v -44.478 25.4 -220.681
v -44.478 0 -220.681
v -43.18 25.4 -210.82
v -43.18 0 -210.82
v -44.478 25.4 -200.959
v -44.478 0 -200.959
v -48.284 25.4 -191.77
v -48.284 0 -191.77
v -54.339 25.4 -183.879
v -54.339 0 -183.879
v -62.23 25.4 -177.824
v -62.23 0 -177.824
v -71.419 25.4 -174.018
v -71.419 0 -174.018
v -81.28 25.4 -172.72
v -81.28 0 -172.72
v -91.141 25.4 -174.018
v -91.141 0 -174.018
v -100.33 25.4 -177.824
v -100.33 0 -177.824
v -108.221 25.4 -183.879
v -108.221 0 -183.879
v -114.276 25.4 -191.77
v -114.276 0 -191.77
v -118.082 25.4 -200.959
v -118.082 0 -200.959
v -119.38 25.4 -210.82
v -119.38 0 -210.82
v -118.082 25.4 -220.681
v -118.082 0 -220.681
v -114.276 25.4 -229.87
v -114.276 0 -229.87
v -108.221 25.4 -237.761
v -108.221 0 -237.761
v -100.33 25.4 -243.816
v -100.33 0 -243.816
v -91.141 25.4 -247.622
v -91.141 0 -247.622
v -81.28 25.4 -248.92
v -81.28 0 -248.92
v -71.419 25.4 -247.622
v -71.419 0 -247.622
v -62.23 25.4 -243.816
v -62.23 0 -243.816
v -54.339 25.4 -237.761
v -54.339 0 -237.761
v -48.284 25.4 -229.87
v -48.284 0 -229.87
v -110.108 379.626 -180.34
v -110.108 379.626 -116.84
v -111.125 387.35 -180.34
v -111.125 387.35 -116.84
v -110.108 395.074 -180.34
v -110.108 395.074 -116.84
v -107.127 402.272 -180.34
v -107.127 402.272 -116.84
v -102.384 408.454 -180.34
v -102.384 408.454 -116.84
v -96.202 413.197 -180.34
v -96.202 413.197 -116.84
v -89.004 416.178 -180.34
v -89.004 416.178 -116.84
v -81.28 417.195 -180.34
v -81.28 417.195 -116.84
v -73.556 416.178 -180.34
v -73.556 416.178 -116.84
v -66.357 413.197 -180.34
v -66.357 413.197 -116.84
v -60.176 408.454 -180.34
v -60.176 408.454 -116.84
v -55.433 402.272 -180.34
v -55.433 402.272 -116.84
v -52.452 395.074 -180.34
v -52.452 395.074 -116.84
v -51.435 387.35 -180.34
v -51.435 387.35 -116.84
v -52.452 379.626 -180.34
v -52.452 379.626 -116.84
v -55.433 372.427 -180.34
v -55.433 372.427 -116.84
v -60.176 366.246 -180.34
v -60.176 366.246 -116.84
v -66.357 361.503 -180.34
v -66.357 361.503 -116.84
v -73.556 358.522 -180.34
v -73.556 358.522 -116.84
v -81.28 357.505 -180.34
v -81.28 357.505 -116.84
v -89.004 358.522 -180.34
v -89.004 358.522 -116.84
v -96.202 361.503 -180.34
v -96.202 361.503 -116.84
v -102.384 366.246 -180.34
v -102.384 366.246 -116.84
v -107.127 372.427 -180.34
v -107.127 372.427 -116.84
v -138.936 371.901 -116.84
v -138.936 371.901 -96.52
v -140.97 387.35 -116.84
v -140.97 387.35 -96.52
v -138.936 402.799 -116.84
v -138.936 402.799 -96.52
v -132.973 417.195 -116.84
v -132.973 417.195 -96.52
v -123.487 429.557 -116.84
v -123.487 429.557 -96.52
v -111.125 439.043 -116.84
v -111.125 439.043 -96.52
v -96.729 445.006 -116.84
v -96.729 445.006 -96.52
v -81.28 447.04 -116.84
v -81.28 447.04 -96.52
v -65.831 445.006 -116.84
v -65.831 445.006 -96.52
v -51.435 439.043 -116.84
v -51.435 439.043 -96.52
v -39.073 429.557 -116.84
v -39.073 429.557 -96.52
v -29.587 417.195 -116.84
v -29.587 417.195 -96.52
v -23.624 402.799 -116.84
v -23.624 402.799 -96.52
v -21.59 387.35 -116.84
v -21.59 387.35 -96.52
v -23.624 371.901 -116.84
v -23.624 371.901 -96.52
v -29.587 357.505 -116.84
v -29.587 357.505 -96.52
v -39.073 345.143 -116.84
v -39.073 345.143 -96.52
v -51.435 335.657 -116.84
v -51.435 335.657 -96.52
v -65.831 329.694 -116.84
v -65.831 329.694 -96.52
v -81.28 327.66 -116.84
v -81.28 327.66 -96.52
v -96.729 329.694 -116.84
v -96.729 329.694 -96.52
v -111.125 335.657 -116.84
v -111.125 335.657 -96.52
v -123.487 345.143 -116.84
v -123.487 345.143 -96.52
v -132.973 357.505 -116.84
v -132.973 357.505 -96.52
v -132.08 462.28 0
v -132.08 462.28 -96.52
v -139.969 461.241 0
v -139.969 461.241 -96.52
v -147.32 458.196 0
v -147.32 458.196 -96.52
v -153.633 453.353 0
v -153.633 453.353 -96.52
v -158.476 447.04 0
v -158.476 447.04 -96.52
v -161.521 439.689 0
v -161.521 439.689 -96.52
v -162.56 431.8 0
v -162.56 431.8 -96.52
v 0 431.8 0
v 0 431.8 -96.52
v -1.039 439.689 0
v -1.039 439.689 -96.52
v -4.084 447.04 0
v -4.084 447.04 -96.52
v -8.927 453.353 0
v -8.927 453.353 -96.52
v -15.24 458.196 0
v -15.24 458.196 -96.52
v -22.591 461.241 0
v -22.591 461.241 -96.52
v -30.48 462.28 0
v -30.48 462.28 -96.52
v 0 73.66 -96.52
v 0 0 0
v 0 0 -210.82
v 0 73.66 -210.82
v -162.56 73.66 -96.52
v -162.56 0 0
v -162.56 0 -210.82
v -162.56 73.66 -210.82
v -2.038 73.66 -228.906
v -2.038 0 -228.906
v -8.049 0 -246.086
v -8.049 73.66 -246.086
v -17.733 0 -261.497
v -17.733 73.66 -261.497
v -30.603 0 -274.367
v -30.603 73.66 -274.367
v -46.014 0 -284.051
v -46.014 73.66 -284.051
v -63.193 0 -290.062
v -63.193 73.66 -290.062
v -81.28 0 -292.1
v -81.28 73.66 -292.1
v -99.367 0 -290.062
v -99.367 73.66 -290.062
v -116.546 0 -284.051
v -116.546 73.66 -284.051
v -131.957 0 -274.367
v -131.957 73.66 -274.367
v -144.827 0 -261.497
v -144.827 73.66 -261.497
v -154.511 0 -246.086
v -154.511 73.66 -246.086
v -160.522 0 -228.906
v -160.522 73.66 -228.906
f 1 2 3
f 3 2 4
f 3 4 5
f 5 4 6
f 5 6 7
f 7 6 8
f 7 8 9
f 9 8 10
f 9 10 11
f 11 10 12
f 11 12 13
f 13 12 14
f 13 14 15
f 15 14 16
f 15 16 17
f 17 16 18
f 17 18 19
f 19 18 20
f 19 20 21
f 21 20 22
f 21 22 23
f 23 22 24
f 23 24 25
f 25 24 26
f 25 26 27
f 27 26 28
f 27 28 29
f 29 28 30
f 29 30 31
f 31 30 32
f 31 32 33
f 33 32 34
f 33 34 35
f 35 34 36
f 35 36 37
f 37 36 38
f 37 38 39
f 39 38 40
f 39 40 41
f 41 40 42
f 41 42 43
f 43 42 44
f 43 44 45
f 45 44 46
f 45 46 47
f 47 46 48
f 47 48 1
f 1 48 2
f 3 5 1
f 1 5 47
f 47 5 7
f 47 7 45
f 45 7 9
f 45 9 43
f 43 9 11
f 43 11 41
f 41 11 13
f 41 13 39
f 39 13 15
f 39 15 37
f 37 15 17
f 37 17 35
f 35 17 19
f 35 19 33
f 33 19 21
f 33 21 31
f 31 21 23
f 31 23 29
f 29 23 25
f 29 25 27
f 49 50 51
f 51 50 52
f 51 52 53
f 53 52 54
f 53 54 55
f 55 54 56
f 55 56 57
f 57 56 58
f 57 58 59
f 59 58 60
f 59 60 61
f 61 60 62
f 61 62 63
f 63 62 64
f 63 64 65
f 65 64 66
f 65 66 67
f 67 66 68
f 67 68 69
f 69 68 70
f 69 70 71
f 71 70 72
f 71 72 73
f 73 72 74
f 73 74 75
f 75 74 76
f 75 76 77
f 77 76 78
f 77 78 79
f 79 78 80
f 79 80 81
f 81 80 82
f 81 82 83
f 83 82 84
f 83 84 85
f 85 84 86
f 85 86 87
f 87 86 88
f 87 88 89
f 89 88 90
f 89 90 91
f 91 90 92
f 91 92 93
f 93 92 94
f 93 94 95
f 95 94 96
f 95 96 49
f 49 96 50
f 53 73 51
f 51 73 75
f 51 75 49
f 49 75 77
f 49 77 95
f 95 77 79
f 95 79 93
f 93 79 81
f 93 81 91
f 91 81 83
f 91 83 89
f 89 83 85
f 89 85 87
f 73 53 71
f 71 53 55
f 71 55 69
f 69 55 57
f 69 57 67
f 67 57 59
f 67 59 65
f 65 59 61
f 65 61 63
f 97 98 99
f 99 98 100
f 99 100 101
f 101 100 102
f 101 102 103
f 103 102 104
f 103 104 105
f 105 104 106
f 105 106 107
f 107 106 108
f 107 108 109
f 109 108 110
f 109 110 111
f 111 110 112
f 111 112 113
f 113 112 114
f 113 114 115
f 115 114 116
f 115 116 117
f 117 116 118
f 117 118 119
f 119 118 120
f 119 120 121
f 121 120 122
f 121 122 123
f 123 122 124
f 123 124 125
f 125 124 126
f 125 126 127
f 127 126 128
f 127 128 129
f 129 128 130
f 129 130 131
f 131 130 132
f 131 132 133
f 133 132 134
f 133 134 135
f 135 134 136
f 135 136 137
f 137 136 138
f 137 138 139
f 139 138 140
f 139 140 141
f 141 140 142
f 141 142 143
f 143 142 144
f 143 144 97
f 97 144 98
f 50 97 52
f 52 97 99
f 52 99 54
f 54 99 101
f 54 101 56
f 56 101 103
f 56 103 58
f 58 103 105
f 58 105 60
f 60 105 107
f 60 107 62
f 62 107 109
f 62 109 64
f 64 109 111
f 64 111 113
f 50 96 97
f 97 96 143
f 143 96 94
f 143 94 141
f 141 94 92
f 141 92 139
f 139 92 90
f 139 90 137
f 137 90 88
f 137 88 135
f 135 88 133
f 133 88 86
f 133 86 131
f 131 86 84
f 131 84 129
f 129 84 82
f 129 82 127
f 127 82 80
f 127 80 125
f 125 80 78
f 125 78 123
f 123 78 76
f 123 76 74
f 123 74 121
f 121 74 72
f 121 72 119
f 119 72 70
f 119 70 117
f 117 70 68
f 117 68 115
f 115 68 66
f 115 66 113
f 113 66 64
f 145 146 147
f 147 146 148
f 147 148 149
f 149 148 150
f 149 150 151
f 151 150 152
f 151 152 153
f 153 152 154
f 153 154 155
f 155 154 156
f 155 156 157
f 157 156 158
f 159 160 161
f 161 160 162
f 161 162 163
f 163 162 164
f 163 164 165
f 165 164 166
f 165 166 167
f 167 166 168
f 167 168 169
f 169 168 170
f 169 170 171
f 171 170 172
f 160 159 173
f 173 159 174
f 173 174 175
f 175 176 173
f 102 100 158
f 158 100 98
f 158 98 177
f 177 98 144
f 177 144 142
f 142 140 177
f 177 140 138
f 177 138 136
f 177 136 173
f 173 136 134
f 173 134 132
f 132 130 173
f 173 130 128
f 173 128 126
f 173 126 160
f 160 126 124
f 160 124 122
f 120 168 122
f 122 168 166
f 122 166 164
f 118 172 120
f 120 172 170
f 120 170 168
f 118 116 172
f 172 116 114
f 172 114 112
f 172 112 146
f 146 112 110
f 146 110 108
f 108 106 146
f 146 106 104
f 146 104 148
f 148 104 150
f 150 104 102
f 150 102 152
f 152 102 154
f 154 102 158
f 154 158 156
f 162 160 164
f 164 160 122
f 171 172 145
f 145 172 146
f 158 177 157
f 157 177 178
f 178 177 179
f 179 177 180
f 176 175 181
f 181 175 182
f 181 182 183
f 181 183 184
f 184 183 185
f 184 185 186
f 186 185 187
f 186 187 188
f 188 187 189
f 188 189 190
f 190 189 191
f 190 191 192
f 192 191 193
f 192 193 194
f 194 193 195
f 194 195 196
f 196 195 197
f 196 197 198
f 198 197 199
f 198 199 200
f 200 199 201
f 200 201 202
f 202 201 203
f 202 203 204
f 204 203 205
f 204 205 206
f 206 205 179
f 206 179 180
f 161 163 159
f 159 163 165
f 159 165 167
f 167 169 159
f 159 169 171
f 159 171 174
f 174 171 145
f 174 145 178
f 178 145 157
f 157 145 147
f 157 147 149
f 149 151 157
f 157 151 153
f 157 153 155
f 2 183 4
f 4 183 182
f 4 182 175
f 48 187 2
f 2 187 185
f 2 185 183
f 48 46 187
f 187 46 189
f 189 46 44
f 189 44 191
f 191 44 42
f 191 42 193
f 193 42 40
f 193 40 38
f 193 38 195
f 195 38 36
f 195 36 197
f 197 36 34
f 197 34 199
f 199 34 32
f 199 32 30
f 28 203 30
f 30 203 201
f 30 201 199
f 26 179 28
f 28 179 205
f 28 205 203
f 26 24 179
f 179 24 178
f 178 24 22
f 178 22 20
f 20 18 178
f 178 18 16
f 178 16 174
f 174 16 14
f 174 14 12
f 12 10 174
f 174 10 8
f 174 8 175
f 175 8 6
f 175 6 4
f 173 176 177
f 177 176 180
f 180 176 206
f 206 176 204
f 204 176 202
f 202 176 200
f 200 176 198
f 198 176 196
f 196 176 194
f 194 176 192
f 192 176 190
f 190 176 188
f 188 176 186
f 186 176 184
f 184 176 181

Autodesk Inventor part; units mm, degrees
ref_plane "YZ Plane" through (0, 0, 0) normal (1, 0, 0) x (0, 1, 0)
ref_plane "XZ Plane" through (0, 0, 0) normal (0, 1, 0) x (-1, 0, 0)
ref_plane "XY Plane" through (0, 0, 0) normal (0, 0, 1) x (1, 0, 0)
sketch "Sketch1" plane through (0, 0, 0) normal (0, 1, 0) x (-1, 0, 0)
  line L0 (0, 0) -> (162.56, 0)
  line L1 (162.56, 0) -> (162.56, -210.82)
  line L2 (81.28, -292.1) -> (81.28, -292.1)
  line L3 (0, -210.82) -> (0, 0)
  arc A0 (81.28, -292.1) -> (162.56, -210.82) centre (81.28, -210.82) ccw
  arc A1 (0, -210.82) -> (81.28, -292.1) centre (81.28, -210.82) ccw
  point P0 (162.56, -292.1)
  point P1 (0, -292.1)
  dimension "d0" = 292.1
  dimension "d1" = 162.56
  dimension "d2" = 81.28
extrude "Extrusion1" add sketch "Sketch1" along normal blind 73.66
sketch "Sketch2" plane through (0, 73.66, 0) normal (0, 1, 0) x (1, 0, 0)
  line L0 (-162.56, 0) -> (0, 0) projected
  line L1 (0, 0) -> (0, 210.82) projected
  line L2 (-162.56, 0) -> (0, 0)
  line L3 (0, 0) -> (0, 96.52)
  line L4 (0, 96.52) -> (-162.56, 96.52)
  line L5 (-162.56, 96.52) -> (-162.56, 0)
  dimension "d23" = 114.3
extrude "Extrusion2" add sketch "Sketch2" along normal blind 388.62
sketch "Sketch3" plane through (-162.56, 0, 0) normal (0, 0, 1) x (1, 0, 0)
  line L0 (162.56, 0) -> (0, 0) projected
  line L1 (162.56, 0) -> (162.56, 462.28) projected
  line L2 (0, 0) -> (162.56, 0)
  line L3 (162.56, 0) -> (162.56, 431.8)
  line L4 (132.08, 462.28) -> (30.48, 462.28)
  line L5 (0, 431.8) -> (0, 0)
  arc A0 (30.48, 462.28) -> (0, 431.8) centre (30.48, 431.8) ccw
  arc A1 (162.56, 431.8) -> (132.08, 462.28) centre (132.08, 431.8) ccw
  dimension "d8" = 30.48
extrude "Extrusion3" cut sketch "Sketch3" against normal blind 508 keep common part
sketch "Sketch4" plane through (0, 73.66, -96.52) normal (0, 0, -1) x (-1, 0, 0)
  line L0 (132.08, 388.62) -> (30.48, 388.62) projected
  circle A0 centre (81.28, 313.69) radius 59.69
  line L1 (0, -73.66) -> (162.56, -73.66) projected
  dimension "d12" = 119.38
  dimension "d22" = 387.35
extrude "Extrusion4" add sketch "Sketch4" along normal blind 20.32
sketch "Sketch5" plane through (-81.28, 387.35, -116.84) normal (0, 0, -1) x (-1, 0, 0)
  circle A0 centre (0, 0) radius 29.845
  point P0 (-81.28, -387.35)
  dimension "d15" = 59.69
extrude "Extrusion5" add sketch "Sketch5" along normal blind 63.5
sketch "Sketch6" plane through (0, 0, 0) normal (0, -1, 0) x (1, 0, 0)
  arc A0 (-162.56, -210.82) -> (0, -210.82) centre (-81.28, -210.82) ccw projected
  circle A1 centre (-81.28, -210.82) radius 38.1
  point P0 (0, 0)
  dimension "d18" = 76.2
extrude "Extrusion6" cut sketch "Sketch6" against normal blind 25.4
properties part number "Waist Link-lrg"
